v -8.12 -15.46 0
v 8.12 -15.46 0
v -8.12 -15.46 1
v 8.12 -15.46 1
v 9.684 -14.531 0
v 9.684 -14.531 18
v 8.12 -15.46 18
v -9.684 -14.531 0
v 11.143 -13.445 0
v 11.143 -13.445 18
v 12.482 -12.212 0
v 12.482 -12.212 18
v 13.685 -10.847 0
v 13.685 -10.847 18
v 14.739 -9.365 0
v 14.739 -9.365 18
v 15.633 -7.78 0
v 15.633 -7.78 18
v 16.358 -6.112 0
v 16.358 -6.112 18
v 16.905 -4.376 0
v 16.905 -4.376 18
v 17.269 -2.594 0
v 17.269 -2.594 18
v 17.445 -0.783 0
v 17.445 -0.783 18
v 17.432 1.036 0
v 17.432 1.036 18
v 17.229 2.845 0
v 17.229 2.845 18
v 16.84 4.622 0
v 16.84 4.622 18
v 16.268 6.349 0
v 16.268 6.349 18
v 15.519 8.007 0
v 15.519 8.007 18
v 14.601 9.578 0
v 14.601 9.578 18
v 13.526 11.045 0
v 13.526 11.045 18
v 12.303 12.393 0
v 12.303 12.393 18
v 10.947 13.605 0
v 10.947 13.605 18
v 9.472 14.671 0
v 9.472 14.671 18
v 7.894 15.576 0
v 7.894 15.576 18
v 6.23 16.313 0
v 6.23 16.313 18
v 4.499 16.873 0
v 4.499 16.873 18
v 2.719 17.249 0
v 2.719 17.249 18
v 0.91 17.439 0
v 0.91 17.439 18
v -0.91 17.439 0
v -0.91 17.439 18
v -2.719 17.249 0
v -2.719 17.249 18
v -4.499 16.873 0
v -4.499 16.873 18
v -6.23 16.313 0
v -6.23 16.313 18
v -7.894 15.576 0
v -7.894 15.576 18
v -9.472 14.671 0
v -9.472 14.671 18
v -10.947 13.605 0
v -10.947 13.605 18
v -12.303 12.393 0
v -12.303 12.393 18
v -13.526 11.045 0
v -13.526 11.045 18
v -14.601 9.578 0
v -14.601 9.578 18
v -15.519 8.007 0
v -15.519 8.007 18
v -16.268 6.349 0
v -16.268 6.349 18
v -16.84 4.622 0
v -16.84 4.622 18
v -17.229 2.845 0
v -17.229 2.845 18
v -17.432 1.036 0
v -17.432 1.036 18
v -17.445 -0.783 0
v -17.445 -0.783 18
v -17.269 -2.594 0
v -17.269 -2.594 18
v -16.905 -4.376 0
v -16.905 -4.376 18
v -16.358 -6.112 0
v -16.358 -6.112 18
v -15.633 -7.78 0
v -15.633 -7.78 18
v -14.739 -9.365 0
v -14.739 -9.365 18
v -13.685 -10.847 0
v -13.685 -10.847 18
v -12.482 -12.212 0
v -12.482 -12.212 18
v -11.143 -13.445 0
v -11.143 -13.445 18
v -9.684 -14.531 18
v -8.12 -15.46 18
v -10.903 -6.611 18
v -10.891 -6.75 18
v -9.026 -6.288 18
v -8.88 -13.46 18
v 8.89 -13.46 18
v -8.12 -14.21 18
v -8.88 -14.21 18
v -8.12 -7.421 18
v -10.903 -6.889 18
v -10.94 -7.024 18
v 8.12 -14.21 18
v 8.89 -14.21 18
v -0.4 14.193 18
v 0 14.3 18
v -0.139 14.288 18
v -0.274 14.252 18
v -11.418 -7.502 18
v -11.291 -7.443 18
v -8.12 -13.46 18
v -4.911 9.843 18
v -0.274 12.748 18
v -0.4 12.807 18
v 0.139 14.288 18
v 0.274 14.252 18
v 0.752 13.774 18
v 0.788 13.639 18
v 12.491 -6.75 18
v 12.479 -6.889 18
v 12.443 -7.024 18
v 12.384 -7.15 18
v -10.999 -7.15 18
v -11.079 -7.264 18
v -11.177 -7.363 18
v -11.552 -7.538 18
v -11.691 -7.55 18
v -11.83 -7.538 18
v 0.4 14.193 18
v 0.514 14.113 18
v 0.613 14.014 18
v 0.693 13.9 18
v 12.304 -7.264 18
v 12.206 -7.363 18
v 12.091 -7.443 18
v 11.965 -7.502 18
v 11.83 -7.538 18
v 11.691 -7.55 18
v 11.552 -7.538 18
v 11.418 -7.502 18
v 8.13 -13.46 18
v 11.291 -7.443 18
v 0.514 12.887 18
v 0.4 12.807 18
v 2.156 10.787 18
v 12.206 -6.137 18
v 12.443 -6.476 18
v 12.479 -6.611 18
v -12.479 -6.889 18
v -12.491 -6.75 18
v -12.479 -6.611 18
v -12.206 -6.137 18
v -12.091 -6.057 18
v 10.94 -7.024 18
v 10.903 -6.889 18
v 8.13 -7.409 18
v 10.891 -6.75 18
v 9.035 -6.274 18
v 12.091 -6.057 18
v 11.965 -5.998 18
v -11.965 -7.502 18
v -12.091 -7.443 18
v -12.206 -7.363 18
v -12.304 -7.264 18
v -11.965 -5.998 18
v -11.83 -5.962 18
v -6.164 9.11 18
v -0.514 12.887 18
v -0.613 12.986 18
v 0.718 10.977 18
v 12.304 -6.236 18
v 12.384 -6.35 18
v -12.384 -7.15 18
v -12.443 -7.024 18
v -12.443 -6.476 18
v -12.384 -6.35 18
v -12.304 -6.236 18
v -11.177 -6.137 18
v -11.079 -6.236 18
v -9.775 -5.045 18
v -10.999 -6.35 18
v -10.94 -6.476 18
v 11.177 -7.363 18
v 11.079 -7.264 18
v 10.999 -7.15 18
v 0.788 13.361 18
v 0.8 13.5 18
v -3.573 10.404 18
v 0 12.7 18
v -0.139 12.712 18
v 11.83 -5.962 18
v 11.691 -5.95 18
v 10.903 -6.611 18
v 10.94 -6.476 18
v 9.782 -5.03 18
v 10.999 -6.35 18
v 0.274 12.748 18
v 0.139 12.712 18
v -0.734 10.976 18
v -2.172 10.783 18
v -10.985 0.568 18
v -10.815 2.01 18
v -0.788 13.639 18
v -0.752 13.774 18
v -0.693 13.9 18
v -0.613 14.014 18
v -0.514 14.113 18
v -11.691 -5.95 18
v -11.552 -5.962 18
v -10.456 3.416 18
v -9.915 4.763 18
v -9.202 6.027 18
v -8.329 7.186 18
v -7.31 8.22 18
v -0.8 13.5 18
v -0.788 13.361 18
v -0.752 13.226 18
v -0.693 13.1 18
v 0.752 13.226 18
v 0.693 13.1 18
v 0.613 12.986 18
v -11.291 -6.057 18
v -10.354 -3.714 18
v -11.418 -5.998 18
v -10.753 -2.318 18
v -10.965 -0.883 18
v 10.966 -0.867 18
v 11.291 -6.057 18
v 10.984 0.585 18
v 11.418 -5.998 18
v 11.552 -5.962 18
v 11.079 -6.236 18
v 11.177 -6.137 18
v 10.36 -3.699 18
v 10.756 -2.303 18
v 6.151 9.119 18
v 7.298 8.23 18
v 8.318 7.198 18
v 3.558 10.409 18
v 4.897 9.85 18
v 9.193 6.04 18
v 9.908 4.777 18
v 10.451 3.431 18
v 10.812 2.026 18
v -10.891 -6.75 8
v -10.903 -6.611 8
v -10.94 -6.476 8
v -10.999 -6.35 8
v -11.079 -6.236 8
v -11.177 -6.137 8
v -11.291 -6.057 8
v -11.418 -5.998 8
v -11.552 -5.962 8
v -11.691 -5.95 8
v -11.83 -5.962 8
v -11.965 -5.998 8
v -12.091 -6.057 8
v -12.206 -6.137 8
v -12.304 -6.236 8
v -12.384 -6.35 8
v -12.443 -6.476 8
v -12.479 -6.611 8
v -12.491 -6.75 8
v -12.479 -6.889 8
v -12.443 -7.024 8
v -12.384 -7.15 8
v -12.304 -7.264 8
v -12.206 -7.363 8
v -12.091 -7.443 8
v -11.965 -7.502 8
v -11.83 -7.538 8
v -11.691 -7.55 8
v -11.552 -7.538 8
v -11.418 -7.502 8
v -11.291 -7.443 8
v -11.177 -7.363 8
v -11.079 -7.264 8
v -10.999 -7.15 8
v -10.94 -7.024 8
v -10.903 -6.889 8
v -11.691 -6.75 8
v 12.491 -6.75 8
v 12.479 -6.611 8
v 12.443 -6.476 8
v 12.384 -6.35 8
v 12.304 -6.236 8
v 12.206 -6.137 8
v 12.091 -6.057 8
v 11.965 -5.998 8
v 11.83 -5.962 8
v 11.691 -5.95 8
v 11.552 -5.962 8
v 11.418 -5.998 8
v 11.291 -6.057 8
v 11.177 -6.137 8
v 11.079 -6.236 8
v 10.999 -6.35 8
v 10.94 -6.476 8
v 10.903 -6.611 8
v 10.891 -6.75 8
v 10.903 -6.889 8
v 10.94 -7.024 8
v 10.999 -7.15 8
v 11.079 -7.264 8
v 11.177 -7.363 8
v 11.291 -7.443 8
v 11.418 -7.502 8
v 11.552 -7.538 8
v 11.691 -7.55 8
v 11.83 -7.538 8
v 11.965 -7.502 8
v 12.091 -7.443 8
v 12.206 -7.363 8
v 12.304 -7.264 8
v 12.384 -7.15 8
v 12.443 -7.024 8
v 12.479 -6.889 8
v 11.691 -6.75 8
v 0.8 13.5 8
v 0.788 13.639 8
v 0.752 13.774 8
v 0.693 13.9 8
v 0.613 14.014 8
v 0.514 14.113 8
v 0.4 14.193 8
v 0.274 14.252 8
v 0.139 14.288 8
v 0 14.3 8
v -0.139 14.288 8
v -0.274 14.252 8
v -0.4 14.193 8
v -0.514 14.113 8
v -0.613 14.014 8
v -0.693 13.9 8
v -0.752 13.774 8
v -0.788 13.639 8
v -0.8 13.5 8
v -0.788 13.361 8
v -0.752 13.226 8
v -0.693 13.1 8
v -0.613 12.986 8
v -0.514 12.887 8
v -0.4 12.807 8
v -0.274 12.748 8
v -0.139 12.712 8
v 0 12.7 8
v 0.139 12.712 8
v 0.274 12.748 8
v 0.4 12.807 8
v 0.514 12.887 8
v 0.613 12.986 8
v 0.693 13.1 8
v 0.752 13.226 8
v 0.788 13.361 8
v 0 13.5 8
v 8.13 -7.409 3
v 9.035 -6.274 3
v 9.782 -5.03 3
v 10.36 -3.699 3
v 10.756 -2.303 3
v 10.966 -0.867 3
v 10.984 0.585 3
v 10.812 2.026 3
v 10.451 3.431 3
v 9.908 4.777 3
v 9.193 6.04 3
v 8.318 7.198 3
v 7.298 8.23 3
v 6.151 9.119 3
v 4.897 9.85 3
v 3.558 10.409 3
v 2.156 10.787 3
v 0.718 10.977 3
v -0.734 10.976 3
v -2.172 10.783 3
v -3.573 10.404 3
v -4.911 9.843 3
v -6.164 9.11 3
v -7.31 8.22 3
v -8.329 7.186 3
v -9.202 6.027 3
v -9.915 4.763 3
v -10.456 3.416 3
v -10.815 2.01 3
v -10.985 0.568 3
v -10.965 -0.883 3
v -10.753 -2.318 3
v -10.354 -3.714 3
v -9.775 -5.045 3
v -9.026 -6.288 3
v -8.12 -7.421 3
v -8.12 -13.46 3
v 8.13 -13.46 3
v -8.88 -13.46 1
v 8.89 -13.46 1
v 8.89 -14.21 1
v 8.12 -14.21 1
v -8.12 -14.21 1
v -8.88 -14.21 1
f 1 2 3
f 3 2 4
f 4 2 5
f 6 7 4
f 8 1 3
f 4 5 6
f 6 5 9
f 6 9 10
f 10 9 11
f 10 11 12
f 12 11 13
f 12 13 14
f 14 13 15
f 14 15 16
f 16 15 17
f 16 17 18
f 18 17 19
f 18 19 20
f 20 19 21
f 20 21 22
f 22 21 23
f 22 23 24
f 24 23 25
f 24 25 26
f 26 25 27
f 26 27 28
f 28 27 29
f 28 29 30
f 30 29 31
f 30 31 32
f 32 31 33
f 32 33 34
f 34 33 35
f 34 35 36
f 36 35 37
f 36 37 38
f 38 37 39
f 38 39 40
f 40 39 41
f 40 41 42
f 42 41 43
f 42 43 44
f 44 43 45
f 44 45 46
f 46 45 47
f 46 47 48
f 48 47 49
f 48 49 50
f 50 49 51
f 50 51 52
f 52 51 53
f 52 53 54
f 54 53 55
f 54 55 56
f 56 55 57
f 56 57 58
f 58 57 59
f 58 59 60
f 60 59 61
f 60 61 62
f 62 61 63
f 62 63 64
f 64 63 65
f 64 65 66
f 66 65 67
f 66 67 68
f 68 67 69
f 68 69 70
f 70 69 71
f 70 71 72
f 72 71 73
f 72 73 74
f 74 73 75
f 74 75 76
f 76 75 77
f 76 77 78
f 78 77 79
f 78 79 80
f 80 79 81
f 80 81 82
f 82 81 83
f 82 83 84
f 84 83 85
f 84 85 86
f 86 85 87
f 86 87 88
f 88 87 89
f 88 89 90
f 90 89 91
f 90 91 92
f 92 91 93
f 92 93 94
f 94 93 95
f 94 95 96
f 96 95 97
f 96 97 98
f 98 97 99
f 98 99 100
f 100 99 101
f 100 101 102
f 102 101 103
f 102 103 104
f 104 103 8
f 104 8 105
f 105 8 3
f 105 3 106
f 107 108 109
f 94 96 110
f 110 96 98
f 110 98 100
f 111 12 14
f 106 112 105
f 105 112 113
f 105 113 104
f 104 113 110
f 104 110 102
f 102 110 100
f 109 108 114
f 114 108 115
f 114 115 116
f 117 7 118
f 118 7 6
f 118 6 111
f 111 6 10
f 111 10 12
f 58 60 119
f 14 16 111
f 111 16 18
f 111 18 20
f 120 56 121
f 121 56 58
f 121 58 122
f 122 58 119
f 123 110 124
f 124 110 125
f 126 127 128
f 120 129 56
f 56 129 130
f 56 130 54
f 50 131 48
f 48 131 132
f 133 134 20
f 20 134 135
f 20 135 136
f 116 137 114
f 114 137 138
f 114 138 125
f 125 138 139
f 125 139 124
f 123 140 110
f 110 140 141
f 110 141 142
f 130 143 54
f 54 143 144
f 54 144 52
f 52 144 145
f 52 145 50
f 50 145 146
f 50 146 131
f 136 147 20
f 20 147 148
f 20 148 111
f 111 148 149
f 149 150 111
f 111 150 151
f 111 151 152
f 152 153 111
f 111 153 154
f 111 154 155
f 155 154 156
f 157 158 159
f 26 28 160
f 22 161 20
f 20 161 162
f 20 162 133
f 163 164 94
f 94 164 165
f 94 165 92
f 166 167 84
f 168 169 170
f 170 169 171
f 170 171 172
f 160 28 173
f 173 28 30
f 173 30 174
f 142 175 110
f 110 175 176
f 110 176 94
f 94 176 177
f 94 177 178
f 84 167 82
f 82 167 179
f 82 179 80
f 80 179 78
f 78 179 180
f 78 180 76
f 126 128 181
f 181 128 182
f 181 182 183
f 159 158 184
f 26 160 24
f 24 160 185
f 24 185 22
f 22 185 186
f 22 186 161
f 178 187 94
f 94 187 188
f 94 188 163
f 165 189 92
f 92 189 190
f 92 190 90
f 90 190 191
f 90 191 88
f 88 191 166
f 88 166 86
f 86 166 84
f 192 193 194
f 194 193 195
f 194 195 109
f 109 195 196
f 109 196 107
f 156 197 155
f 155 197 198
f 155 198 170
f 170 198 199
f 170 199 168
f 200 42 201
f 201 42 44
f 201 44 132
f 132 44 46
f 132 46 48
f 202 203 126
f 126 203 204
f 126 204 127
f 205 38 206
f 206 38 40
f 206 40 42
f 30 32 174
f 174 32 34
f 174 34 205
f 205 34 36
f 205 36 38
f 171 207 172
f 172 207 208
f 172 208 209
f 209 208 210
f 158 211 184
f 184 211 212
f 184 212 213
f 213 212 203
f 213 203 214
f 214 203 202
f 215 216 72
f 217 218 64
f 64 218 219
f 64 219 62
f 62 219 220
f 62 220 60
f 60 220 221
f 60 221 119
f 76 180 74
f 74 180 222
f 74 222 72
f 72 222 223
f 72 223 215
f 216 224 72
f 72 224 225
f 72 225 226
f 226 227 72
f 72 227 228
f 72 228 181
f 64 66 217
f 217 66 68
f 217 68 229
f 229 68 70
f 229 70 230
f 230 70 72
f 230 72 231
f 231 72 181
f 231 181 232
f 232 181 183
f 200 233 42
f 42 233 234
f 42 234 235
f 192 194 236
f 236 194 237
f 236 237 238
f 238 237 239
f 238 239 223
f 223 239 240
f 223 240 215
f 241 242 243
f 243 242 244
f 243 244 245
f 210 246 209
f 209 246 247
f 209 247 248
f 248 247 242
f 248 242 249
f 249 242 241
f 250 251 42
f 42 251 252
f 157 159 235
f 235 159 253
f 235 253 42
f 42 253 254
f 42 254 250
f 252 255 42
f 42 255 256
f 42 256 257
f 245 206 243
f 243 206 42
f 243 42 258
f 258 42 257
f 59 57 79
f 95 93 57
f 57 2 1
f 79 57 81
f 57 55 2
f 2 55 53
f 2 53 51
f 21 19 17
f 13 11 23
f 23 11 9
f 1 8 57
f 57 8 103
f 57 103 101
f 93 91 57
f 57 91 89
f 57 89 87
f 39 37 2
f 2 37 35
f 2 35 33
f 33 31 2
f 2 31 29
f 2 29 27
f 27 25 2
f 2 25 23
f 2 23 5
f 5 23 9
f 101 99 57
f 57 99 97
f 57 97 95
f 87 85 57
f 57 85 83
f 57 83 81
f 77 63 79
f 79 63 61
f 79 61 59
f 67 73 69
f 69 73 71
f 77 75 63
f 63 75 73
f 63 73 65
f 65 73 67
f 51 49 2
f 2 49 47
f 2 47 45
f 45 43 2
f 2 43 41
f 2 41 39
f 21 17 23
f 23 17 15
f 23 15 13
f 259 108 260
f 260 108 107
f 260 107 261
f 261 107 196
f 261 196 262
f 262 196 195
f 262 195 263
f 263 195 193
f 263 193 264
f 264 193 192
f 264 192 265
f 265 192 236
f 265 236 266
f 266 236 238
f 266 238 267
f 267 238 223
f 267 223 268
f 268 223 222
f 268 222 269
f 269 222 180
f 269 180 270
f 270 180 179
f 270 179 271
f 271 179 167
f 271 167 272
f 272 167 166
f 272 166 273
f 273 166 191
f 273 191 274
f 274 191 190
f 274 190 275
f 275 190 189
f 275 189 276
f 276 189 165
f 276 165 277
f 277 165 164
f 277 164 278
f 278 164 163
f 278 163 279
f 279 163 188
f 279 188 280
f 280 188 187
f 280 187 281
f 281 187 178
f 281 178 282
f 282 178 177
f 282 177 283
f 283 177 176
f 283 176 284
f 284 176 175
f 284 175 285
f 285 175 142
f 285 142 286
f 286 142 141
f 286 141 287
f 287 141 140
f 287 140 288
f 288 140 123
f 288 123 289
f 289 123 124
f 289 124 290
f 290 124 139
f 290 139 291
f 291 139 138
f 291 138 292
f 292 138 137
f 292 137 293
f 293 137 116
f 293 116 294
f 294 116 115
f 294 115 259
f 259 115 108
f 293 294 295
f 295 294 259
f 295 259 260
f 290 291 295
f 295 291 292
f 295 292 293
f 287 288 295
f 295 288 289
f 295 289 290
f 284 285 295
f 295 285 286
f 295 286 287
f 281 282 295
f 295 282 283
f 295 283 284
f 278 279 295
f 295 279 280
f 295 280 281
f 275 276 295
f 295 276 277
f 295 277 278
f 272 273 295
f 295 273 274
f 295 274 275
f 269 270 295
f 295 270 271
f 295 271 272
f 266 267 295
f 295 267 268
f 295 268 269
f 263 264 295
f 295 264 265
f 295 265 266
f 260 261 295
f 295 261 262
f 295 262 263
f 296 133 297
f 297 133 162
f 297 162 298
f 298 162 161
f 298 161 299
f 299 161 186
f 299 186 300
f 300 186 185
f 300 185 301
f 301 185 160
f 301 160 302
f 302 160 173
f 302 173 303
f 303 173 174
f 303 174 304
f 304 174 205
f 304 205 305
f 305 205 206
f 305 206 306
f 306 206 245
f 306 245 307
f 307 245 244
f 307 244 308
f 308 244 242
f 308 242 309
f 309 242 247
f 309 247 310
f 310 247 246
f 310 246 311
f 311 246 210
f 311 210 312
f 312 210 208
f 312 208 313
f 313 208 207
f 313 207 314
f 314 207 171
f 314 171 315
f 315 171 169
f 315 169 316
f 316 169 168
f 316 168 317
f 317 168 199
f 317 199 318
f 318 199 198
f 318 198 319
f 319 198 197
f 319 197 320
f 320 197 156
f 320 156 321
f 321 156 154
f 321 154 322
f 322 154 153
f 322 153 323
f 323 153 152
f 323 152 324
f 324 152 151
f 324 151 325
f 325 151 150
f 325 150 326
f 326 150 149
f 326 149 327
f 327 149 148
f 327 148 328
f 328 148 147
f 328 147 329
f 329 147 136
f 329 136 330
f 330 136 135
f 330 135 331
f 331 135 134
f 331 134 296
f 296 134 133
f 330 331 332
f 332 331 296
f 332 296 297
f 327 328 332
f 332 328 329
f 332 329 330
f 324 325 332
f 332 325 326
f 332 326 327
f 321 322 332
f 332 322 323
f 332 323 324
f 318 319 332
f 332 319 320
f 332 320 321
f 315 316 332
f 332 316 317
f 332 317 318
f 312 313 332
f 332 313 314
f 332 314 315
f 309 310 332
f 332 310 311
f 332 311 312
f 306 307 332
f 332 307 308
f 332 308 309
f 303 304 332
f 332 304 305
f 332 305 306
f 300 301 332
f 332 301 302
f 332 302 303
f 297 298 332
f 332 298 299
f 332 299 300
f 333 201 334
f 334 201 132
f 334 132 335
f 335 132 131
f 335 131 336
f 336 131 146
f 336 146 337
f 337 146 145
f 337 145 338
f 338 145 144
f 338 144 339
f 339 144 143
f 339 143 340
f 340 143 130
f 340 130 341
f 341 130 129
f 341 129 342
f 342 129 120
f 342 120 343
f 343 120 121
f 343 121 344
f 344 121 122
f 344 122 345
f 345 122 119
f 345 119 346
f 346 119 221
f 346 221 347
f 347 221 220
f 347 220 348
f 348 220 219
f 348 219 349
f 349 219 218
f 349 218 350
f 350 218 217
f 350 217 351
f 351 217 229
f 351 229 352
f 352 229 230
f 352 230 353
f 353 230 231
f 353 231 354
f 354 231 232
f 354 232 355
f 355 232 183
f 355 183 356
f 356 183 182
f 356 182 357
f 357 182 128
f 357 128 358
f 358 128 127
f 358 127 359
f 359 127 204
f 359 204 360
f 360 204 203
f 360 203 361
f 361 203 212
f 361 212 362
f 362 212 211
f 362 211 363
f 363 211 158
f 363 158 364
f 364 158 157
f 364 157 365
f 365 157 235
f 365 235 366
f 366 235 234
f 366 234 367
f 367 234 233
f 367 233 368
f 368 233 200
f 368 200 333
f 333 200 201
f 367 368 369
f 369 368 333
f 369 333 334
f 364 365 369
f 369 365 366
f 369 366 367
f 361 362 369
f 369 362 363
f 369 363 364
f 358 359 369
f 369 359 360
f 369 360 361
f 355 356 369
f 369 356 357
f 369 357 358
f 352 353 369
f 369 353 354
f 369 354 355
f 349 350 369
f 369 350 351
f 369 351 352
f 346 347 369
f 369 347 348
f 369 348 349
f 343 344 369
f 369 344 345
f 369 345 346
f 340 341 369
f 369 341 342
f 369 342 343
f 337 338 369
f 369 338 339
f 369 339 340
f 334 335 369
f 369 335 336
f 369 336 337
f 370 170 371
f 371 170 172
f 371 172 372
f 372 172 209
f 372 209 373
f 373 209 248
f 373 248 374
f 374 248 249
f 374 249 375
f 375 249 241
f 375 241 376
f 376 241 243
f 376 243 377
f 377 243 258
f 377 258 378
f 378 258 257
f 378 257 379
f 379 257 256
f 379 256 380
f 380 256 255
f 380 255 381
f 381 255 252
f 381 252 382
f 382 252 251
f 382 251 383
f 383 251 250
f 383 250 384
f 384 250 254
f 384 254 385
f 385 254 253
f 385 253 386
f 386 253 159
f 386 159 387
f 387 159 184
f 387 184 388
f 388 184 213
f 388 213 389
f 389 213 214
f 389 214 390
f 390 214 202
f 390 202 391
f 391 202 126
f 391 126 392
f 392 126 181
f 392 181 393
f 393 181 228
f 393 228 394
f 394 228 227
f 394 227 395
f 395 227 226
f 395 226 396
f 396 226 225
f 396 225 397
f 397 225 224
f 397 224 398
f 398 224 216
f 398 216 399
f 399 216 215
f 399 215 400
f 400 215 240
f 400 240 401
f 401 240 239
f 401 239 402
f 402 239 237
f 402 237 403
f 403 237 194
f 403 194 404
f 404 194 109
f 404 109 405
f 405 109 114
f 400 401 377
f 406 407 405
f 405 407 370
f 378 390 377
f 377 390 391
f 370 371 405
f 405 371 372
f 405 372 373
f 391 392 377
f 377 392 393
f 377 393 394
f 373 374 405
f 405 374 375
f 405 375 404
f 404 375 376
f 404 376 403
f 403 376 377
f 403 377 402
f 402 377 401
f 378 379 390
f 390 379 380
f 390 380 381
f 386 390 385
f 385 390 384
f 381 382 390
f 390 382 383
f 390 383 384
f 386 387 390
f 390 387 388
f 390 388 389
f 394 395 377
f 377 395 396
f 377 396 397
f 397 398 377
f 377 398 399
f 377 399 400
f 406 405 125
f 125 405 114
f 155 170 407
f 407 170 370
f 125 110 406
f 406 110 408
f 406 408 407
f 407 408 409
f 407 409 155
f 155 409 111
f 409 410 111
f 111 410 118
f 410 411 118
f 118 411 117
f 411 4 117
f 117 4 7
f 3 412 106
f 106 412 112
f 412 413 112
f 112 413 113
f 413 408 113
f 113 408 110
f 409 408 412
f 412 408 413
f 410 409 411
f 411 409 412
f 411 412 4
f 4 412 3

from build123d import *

# Parameters (mm, degrees)
SKETCH2_R           = 17.4625
BOSS_EXTRUDE1_DEPTH = 18
SKETCH13_R          = 0.8
CUT_EXTRUDE6_DEPTH  = 10
SKETCH16_R          = 11
CUT_EXTRUDE9_DEPTH  = 15
CUT_EXTRUDE11_DEPTH = 22
SKETCH21_W          = 16.25
SKETCH21_H          = 2.78436417
CUT_EXTRUDE12_DEPTH = 31.559414466
CUT_EXTRUDE13_REACH = 32.559
SKETCH24_W          = 16.25
SKETCH24_H          = 6.70136321
CUT_EXTRUDE14_DEPTH = 17


with BuildPart() as part:
    # Sketch2 → Boss-Extrude1 (new body)
    with BuildSketch(Plane.XY):
        Circle(SKETCH2_R)
    extrude(amount=BOSS_EXTRUDE1_DEPTH)

    # Sketch13 → Cut-Extrude6 (cut)
    with BuildSketch(Plane.XY.offset(18)):
        with Locations((0, 13.5)):
            Circle(SKETCH13_R)
        with Locations((11.691342951, -6.75)):
            Circle(SKETCH13_R)
        with Locations((-11.691342951, -6.75)):
            Circle(SKETCH13_R)
    extrude(amount=-CUT_EXTRUDE6_DEPTH, mode=Mode.SUBTRACT)

    # Sketch16 → Cut-Extrude9 (cut)
    with BuildSketch(Plane.XY.offset(18)):
        Circle(SKETCH16_R)
    extrude(amount=-CUT_EXTRUDE9_DEPTH, mode=Mode.SUBTRACT)

    # Sketch20 → Cut-Extrude11 (cut)
    with BuildSketch(Plane(origin=(5.95728493, 0, -11.08430825), x_dir=(0, 0, 1), z_dir=(0, 1, 0))):
        Polygon((16.52930825, -11.021800725), (16.52930825, -6.906800725), (14.92930825, -6.906800725), (14.92930825, -4.926800725), (16.52930825, -4.926800725), (16.52930825, -0.811800725), (18.05430825, -0.811800725), (18.05430825, 1.028199275), (22.11430825, 1.028199275), (22.11430825, -0.811800725), (23.63930825, -0.811800725), (23.63930825, -11.021800725), (22.11430825, -11.021800725), (22.11430825, -12.861800725), (18.05430825, -12.861800725), (18.05430825, -11.021800725), align=None)
    extrude(amount=-CUT_EXTRUDE11_DEPTH, mode=Mode.SUBTRACT)

    # Sketch21 → Cut-Extrude12 (cut, through all)
    with BuildSketch(Plane.XY.offset(18)):
        with Locations((0, -16.852182085)):
            Rectangle(SKETCH21_W, SKETCH21_H)
    extrude(amount=-CUT_EXTRUDE12_DEPTH, mode=Mode.SUBTRACT)

    # Cut-Extrude13: up to this face of the body (flat: up to its plane)
    cut_extrude13_end = Plane(part.part.faces().sort_by_distance((0, 0, 3))[0])
    # Sketch24 → Cut-Extrude13 (cut, up to the picked face)
    with BuildSketch(Plane.XY.offset(18), mode=Mode.PRIVATE) as cut_extrude13_sk1:
        with Locations((0.005436819, -10.109318395)):
            Rectangle(SKETCH24_W, SKETCH24_H)
    cut_extrude13_tool1 = split(extrude(cut_extrude13_sk1.sketch, amount=-CUT_EXTRUDE13_REACH, mode=Mode.PRIVATE), bisect_by=cut_extrude13_end, keep=Keep.BOTH, mode=Mode.PRIVATE)
    add(cut_extrude13_tool1.solids().sort_by(Axis((0.005437, -10.109318, 18), (0, 0, -1)))[0], mode=Mode.SUBTRACT)

    # Sketch26 → Cut-Extrude14 (cut)
    with BuildSketch(Plane.XY.offset(18)):
        Polygon((-8.119563181, -14.21), (-8.119563181, -15.46), (8.119563181, -15.46), (8.119563181, -14.21), (8.890436819, -14.21), (8.890436819, -13.46), (8.130436819, -13.46), (-8.119563181, -13.46), (-8.879563181, -13.46), (-8.879563181, -14.21), align=None)
    extrude(amount=-CUT_EXTRUDE14_DEPTH, mode=Mode.SUBTRACT)


solid = part.part
